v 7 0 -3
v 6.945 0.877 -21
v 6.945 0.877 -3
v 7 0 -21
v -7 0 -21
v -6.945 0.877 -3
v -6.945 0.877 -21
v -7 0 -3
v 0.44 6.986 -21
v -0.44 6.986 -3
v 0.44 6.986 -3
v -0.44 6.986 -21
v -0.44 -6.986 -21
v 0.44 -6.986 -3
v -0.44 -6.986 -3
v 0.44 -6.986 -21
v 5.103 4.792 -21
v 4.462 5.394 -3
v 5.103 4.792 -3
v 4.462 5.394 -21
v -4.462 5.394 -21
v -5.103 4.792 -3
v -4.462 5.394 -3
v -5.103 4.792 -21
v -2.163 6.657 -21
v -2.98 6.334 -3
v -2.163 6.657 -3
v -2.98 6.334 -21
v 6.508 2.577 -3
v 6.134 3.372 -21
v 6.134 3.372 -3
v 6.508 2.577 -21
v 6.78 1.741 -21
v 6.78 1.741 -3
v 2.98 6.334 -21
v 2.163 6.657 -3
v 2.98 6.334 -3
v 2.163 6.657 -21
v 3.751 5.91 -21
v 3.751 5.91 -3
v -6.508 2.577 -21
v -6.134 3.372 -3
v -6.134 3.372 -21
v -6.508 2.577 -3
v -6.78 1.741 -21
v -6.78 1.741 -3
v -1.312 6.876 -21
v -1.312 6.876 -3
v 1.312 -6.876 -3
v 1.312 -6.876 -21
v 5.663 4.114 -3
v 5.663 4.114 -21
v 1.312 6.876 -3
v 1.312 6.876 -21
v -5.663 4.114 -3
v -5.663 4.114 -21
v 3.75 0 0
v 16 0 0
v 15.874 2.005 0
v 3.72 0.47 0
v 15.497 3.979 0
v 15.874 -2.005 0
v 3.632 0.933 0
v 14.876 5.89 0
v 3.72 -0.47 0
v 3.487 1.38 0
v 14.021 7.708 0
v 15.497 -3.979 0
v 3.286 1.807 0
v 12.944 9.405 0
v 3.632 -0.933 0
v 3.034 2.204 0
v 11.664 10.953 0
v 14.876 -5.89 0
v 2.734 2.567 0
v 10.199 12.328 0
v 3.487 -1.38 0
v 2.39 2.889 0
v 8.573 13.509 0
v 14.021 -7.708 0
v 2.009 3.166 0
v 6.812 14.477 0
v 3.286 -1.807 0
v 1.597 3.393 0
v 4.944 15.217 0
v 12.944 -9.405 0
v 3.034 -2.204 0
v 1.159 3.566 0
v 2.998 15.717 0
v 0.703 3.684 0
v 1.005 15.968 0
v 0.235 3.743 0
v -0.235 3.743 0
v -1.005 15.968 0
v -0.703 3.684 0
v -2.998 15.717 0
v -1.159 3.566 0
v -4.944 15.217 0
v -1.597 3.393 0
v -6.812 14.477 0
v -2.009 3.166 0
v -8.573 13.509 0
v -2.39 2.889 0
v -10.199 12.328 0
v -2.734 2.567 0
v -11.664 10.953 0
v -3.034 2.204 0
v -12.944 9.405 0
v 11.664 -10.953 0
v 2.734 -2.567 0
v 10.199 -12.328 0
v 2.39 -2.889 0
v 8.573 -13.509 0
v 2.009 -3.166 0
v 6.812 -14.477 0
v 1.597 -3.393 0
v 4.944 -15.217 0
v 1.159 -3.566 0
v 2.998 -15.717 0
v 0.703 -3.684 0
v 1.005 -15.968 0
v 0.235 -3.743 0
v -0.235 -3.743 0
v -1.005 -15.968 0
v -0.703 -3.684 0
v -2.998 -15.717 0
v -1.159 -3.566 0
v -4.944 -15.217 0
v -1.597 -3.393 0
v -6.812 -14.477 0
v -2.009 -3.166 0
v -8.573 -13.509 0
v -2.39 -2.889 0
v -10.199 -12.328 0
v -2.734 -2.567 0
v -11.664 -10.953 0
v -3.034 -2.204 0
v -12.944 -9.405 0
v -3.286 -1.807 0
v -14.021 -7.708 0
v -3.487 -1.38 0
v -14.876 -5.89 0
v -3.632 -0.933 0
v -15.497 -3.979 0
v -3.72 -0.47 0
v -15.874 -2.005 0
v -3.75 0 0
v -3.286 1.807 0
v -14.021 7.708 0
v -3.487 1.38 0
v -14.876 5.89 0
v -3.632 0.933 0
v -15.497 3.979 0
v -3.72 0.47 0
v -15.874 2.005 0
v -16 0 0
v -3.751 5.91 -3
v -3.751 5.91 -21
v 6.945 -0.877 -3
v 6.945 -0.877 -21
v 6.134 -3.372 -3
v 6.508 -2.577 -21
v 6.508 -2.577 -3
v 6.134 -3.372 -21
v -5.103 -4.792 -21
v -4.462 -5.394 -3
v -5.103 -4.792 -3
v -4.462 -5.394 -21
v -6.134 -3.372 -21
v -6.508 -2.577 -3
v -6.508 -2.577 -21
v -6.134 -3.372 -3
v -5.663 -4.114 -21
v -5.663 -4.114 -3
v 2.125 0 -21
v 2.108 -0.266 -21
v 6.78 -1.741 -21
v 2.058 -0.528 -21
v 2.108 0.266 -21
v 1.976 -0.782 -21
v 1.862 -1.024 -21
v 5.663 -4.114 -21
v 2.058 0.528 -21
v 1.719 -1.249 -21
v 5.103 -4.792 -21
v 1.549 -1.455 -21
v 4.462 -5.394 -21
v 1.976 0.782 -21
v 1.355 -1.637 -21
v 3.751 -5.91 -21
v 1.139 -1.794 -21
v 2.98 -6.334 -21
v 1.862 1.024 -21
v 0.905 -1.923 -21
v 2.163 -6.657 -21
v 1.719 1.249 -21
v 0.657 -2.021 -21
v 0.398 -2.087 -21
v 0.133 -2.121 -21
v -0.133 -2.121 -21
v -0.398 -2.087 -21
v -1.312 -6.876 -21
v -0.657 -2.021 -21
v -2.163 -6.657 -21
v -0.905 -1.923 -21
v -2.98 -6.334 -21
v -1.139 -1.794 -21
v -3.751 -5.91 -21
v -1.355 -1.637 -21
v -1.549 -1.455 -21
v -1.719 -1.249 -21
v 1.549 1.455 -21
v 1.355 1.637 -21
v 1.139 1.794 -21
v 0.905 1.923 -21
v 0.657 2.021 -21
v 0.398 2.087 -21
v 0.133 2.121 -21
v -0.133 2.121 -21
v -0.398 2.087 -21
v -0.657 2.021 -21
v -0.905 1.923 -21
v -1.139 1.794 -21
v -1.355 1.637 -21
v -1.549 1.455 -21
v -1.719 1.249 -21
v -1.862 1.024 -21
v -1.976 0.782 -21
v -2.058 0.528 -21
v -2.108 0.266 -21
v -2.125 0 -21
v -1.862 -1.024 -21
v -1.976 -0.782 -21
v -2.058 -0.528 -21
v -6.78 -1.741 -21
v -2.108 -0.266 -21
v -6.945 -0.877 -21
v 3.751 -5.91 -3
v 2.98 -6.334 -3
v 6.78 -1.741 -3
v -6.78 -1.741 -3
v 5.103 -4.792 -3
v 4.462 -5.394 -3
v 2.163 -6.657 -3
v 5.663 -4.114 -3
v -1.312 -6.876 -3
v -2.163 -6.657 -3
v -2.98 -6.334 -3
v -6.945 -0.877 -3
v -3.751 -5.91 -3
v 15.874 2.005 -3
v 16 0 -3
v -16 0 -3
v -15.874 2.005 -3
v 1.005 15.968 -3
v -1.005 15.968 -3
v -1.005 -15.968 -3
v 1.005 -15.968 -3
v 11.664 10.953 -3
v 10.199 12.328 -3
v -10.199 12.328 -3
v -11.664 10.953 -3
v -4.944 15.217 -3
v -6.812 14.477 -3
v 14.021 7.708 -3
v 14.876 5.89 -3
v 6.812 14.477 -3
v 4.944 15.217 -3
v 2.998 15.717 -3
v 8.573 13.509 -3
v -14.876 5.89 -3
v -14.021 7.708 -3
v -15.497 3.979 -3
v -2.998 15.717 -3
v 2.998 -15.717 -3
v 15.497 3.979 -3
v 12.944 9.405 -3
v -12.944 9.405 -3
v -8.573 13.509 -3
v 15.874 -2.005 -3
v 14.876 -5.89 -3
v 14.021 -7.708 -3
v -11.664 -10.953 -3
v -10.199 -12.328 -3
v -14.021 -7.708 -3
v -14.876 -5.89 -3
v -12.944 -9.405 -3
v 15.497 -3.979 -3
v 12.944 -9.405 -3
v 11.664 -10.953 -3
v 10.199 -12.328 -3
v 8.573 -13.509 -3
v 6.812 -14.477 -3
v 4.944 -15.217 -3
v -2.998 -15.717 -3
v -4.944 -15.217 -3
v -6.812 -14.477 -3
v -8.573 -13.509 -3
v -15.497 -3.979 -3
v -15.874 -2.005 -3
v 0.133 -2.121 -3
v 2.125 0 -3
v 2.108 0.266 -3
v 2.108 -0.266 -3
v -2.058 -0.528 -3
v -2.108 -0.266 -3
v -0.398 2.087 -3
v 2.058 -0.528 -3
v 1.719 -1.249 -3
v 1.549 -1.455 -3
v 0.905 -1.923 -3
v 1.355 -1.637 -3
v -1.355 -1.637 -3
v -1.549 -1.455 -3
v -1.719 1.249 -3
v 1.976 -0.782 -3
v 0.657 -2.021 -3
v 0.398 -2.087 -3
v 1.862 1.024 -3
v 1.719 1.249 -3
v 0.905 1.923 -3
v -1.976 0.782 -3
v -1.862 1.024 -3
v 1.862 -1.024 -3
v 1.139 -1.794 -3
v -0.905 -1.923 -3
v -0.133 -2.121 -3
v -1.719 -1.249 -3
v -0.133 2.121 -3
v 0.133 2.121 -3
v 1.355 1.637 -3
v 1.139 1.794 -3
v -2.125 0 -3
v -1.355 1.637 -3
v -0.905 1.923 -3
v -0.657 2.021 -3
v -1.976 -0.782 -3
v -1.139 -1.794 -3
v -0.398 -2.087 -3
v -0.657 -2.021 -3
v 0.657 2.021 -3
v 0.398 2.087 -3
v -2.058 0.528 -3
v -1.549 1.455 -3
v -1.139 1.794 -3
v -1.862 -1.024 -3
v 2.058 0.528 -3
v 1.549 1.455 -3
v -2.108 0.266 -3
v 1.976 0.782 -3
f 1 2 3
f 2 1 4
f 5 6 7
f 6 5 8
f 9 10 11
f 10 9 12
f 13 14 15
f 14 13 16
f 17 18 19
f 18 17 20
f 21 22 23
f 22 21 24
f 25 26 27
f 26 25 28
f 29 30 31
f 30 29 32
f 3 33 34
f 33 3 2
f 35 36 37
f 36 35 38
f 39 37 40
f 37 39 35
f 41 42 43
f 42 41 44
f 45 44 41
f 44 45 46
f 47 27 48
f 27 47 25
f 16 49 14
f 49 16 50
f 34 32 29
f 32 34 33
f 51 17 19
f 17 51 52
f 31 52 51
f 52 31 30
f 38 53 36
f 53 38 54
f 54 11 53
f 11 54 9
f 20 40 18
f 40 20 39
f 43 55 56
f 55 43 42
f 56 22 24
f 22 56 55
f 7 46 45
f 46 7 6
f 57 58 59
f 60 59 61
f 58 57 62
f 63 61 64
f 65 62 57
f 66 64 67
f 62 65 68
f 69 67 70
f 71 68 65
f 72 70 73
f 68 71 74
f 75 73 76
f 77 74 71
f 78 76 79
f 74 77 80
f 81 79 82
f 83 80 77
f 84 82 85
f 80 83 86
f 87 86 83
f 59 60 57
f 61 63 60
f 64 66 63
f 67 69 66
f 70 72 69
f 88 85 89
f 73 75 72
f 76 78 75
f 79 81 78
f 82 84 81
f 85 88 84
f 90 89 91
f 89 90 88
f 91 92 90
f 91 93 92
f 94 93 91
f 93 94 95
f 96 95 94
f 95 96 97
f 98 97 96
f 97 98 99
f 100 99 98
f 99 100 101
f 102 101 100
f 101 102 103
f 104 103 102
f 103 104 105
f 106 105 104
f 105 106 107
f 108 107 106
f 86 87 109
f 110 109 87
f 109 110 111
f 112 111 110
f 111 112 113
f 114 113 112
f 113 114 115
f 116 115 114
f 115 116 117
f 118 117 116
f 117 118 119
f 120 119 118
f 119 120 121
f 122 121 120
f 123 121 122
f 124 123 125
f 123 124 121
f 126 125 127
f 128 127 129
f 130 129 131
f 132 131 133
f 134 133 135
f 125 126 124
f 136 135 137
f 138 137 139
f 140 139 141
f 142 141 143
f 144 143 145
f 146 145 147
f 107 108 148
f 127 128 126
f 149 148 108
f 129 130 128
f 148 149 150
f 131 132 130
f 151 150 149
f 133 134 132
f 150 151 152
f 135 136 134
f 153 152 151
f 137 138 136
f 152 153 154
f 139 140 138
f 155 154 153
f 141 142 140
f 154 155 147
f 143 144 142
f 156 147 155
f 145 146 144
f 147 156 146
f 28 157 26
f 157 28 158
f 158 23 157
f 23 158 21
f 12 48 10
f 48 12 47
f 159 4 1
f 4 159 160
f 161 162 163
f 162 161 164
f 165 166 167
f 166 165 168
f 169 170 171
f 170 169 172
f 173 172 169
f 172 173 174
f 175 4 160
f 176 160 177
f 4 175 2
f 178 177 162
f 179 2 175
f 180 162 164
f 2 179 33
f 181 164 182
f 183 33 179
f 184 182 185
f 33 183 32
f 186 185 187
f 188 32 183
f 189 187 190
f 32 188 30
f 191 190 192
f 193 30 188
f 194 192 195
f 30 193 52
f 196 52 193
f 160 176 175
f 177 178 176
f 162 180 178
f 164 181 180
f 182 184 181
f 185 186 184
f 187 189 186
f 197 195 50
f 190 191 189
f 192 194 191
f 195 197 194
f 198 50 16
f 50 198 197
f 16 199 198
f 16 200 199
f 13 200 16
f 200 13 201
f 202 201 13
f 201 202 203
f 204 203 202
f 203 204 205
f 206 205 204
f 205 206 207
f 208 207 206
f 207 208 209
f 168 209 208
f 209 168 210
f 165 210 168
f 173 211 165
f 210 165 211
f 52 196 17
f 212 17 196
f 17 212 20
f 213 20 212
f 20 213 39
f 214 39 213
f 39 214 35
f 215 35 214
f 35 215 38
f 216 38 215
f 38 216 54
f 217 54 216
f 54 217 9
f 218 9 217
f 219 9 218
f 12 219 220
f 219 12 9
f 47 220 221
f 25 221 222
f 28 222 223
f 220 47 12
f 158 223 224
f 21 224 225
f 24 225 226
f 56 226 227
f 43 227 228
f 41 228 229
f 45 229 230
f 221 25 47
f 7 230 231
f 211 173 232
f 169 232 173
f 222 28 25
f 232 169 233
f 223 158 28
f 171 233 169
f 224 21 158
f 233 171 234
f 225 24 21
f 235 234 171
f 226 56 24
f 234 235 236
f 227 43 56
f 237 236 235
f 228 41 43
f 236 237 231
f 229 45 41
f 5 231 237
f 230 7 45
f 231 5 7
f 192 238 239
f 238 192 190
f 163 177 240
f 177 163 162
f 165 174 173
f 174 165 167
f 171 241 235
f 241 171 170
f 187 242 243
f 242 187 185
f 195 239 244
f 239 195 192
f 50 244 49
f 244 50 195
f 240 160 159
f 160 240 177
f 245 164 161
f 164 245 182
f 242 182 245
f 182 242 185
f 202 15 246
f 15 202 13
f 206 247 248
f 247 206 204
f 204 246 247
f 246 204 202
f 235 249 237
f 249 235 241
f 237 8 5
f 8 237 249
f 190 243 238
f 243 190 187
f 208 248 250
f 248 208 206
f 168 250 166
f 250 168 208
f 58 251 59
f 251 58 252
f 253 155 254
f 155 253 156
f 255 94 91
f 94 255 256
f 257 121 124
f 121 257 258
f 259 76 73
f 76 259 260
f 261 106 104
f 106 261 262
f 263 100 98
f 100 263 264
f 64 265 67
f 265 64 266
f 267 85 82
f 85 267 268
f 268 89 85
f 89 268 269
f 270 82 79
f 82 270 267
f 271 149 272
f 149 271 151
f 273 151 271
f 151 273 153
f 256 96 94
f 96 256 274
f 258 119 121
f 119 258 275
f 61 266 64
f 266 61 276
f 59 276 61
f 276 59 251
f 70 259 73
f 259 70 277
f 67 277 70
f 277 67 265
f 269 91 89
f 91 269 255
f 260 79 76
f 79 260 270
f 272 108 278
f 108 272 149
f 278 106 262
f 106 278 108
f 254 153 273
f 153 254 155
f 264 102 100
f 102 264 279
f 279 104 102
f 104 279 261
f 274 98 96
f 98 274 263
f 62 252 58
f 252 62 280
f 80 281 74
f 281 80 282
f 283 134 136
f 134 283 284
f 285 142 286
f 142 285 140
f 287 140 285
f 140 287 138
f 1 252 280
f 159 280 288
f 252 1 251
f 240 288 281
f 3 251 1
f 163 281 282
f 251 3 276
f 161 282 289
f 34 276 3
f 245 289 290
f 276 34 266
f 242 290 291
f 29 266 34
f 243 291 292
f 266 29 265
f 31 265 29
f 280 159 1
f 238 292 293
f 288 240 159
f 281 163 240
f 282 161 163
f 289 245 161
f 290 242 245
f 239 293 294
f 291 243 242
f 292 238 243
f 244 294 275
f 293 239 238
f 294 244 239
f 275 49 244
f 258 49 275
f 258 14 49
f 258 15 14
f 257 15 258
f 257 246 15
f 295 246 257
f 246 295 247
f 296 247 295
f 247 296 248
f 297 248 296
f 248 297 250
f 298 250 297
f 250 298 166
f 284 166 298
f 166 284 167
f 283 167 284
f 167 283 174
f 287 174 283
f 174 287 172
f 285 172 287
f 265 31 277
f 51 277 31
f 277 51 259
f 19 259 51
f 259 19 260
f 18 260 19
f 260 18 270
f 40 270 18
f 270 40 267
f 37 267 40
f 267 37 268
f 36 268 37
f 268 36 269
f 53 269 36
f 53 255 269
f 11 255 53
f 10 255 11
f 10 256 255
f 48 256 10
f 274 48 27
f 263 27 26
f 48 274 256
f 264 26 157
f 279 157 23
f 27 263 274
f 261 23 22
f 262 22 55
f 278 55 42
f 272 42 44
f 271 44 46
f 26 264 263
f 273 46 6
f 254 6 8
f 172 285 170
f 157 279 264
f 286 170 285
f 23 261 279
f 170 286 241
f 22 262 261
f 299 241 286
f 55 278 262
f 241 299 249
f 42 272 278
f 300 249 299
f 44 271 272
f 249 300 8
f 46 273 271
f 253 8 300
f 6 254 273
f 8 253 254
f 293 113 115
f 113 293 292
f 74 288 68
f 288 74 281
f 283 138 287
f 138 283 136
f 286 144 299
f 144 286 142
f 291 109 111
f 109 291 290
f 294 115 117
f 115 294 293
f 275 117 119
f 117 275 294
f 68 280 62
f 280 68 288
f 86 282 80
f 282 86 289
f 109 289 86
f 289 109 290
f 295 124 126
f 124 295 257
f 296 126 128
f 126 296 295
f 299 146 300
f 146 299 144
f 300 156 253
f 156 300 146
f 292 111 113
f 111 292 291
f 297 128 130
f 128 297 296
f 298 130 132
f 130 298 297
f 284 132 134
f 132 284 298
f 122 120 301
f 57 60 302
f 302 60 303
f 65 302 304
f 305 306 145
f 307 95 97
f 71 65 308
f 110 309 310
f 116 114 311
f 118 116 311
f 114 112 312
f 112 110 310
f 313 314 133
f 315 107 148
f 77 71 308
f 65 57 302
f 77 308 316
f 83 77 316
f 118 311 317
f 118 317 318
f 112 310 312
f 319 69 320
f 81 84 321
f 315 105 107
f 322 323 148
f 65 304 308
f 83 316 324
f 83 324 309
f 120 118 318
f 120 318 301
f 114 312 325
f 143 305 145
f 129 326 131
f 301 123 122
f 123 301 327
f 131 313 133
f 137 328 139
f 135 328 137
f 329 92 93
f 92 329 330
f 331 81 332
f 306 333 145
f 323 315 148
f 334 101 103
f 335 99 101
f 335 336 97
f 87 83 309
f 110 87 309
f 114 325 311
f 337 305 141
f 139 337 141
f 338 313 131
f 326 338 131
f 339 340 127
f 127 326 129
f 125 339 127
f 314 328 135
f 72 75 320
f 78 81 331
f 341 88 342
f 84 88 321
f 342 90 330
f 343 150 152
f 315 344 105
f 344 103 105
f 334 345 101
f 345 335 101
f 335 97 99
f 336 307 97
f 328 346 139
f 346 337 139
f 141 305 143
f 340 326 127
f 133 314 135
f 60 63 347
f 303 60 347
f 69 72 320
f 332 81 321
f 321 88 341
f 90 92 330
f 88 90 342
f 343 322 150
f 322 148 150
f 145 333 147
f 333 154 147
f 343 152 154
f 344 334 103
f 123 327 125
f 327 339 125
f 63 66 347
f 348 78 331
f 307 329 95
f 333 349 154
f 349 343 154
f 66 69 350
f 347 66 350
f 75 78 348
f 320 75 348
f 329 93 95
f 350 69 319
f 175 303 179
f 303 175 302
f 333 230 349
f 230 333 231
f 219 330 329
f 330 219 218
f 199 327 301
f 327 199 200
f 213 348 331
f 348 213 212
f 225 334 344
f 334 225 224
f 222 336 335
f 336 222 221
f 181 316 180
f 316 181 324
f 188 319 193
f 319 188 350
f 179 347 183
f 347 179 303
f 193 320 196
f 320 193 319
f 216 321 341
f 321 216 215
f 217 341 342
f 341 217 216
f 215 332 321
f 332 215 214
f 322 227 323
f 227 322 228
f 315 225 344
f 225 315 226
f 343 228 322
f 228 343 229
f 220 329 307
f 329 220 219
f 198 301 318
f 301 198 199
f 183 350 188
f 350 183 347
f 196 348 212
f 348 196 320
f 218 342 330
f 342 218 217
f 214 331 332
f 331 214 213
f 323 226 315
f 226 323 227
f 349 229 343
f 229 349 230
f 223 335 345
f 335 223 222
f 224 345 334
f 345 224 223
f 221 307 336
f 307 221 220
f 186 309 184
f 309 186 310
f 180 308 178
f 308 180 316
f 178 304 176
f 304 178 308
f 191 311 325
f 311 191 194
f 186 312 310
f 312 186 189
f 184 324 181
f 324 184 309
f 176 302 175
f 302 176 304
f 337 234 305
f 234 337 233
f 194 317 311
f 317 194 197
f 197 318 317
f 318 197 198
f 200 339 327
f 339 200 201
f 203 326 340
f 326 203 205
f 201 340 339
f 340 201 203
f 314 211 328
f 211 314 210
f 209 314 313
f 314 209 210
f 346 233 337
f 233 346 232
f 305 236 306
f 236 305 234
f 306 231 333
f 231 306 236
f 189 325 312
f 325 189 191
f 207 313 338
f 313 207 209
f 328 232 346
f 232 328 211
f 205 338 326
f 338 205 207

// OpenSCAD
$fn = 50;


difference() {
	union() {
		translate(v = [0, 0, -21.0000000000]) {
			cylinder(h = 21, r = 7.0000000000);
		}
		translate(v = [0, 0, -3.0000000000]) {
			cylinder(h = 3, r = 16.0000000000);
		}
	}
	union() {
		translate(v = [0, 0, 0]) {
			rotate(a = [0, 0, 0]) {
				difference() {
					union() {
						#translate(v = [0, 0, -21.0000000000]) {
							cylinder(h = 21, r = 2.0000000000);
						}
						#translate(v = [0, 0, -3]) {
							cylinder(h = 3, r = 7.0000000000, r1 = 2.1250000000, r2 = 3.7500000000);
						}
						#translate(v = [0, 0, -21.0000000000]) {
							cylinder(h = 21, r = 2.1250000000);
						}
						#translate(v = [0, 0, -21.0000000000]) {
							cylinder(h = 21, r = 2.0000000000);
						}
					}
					union();
				}
			}
		}
	}
}
